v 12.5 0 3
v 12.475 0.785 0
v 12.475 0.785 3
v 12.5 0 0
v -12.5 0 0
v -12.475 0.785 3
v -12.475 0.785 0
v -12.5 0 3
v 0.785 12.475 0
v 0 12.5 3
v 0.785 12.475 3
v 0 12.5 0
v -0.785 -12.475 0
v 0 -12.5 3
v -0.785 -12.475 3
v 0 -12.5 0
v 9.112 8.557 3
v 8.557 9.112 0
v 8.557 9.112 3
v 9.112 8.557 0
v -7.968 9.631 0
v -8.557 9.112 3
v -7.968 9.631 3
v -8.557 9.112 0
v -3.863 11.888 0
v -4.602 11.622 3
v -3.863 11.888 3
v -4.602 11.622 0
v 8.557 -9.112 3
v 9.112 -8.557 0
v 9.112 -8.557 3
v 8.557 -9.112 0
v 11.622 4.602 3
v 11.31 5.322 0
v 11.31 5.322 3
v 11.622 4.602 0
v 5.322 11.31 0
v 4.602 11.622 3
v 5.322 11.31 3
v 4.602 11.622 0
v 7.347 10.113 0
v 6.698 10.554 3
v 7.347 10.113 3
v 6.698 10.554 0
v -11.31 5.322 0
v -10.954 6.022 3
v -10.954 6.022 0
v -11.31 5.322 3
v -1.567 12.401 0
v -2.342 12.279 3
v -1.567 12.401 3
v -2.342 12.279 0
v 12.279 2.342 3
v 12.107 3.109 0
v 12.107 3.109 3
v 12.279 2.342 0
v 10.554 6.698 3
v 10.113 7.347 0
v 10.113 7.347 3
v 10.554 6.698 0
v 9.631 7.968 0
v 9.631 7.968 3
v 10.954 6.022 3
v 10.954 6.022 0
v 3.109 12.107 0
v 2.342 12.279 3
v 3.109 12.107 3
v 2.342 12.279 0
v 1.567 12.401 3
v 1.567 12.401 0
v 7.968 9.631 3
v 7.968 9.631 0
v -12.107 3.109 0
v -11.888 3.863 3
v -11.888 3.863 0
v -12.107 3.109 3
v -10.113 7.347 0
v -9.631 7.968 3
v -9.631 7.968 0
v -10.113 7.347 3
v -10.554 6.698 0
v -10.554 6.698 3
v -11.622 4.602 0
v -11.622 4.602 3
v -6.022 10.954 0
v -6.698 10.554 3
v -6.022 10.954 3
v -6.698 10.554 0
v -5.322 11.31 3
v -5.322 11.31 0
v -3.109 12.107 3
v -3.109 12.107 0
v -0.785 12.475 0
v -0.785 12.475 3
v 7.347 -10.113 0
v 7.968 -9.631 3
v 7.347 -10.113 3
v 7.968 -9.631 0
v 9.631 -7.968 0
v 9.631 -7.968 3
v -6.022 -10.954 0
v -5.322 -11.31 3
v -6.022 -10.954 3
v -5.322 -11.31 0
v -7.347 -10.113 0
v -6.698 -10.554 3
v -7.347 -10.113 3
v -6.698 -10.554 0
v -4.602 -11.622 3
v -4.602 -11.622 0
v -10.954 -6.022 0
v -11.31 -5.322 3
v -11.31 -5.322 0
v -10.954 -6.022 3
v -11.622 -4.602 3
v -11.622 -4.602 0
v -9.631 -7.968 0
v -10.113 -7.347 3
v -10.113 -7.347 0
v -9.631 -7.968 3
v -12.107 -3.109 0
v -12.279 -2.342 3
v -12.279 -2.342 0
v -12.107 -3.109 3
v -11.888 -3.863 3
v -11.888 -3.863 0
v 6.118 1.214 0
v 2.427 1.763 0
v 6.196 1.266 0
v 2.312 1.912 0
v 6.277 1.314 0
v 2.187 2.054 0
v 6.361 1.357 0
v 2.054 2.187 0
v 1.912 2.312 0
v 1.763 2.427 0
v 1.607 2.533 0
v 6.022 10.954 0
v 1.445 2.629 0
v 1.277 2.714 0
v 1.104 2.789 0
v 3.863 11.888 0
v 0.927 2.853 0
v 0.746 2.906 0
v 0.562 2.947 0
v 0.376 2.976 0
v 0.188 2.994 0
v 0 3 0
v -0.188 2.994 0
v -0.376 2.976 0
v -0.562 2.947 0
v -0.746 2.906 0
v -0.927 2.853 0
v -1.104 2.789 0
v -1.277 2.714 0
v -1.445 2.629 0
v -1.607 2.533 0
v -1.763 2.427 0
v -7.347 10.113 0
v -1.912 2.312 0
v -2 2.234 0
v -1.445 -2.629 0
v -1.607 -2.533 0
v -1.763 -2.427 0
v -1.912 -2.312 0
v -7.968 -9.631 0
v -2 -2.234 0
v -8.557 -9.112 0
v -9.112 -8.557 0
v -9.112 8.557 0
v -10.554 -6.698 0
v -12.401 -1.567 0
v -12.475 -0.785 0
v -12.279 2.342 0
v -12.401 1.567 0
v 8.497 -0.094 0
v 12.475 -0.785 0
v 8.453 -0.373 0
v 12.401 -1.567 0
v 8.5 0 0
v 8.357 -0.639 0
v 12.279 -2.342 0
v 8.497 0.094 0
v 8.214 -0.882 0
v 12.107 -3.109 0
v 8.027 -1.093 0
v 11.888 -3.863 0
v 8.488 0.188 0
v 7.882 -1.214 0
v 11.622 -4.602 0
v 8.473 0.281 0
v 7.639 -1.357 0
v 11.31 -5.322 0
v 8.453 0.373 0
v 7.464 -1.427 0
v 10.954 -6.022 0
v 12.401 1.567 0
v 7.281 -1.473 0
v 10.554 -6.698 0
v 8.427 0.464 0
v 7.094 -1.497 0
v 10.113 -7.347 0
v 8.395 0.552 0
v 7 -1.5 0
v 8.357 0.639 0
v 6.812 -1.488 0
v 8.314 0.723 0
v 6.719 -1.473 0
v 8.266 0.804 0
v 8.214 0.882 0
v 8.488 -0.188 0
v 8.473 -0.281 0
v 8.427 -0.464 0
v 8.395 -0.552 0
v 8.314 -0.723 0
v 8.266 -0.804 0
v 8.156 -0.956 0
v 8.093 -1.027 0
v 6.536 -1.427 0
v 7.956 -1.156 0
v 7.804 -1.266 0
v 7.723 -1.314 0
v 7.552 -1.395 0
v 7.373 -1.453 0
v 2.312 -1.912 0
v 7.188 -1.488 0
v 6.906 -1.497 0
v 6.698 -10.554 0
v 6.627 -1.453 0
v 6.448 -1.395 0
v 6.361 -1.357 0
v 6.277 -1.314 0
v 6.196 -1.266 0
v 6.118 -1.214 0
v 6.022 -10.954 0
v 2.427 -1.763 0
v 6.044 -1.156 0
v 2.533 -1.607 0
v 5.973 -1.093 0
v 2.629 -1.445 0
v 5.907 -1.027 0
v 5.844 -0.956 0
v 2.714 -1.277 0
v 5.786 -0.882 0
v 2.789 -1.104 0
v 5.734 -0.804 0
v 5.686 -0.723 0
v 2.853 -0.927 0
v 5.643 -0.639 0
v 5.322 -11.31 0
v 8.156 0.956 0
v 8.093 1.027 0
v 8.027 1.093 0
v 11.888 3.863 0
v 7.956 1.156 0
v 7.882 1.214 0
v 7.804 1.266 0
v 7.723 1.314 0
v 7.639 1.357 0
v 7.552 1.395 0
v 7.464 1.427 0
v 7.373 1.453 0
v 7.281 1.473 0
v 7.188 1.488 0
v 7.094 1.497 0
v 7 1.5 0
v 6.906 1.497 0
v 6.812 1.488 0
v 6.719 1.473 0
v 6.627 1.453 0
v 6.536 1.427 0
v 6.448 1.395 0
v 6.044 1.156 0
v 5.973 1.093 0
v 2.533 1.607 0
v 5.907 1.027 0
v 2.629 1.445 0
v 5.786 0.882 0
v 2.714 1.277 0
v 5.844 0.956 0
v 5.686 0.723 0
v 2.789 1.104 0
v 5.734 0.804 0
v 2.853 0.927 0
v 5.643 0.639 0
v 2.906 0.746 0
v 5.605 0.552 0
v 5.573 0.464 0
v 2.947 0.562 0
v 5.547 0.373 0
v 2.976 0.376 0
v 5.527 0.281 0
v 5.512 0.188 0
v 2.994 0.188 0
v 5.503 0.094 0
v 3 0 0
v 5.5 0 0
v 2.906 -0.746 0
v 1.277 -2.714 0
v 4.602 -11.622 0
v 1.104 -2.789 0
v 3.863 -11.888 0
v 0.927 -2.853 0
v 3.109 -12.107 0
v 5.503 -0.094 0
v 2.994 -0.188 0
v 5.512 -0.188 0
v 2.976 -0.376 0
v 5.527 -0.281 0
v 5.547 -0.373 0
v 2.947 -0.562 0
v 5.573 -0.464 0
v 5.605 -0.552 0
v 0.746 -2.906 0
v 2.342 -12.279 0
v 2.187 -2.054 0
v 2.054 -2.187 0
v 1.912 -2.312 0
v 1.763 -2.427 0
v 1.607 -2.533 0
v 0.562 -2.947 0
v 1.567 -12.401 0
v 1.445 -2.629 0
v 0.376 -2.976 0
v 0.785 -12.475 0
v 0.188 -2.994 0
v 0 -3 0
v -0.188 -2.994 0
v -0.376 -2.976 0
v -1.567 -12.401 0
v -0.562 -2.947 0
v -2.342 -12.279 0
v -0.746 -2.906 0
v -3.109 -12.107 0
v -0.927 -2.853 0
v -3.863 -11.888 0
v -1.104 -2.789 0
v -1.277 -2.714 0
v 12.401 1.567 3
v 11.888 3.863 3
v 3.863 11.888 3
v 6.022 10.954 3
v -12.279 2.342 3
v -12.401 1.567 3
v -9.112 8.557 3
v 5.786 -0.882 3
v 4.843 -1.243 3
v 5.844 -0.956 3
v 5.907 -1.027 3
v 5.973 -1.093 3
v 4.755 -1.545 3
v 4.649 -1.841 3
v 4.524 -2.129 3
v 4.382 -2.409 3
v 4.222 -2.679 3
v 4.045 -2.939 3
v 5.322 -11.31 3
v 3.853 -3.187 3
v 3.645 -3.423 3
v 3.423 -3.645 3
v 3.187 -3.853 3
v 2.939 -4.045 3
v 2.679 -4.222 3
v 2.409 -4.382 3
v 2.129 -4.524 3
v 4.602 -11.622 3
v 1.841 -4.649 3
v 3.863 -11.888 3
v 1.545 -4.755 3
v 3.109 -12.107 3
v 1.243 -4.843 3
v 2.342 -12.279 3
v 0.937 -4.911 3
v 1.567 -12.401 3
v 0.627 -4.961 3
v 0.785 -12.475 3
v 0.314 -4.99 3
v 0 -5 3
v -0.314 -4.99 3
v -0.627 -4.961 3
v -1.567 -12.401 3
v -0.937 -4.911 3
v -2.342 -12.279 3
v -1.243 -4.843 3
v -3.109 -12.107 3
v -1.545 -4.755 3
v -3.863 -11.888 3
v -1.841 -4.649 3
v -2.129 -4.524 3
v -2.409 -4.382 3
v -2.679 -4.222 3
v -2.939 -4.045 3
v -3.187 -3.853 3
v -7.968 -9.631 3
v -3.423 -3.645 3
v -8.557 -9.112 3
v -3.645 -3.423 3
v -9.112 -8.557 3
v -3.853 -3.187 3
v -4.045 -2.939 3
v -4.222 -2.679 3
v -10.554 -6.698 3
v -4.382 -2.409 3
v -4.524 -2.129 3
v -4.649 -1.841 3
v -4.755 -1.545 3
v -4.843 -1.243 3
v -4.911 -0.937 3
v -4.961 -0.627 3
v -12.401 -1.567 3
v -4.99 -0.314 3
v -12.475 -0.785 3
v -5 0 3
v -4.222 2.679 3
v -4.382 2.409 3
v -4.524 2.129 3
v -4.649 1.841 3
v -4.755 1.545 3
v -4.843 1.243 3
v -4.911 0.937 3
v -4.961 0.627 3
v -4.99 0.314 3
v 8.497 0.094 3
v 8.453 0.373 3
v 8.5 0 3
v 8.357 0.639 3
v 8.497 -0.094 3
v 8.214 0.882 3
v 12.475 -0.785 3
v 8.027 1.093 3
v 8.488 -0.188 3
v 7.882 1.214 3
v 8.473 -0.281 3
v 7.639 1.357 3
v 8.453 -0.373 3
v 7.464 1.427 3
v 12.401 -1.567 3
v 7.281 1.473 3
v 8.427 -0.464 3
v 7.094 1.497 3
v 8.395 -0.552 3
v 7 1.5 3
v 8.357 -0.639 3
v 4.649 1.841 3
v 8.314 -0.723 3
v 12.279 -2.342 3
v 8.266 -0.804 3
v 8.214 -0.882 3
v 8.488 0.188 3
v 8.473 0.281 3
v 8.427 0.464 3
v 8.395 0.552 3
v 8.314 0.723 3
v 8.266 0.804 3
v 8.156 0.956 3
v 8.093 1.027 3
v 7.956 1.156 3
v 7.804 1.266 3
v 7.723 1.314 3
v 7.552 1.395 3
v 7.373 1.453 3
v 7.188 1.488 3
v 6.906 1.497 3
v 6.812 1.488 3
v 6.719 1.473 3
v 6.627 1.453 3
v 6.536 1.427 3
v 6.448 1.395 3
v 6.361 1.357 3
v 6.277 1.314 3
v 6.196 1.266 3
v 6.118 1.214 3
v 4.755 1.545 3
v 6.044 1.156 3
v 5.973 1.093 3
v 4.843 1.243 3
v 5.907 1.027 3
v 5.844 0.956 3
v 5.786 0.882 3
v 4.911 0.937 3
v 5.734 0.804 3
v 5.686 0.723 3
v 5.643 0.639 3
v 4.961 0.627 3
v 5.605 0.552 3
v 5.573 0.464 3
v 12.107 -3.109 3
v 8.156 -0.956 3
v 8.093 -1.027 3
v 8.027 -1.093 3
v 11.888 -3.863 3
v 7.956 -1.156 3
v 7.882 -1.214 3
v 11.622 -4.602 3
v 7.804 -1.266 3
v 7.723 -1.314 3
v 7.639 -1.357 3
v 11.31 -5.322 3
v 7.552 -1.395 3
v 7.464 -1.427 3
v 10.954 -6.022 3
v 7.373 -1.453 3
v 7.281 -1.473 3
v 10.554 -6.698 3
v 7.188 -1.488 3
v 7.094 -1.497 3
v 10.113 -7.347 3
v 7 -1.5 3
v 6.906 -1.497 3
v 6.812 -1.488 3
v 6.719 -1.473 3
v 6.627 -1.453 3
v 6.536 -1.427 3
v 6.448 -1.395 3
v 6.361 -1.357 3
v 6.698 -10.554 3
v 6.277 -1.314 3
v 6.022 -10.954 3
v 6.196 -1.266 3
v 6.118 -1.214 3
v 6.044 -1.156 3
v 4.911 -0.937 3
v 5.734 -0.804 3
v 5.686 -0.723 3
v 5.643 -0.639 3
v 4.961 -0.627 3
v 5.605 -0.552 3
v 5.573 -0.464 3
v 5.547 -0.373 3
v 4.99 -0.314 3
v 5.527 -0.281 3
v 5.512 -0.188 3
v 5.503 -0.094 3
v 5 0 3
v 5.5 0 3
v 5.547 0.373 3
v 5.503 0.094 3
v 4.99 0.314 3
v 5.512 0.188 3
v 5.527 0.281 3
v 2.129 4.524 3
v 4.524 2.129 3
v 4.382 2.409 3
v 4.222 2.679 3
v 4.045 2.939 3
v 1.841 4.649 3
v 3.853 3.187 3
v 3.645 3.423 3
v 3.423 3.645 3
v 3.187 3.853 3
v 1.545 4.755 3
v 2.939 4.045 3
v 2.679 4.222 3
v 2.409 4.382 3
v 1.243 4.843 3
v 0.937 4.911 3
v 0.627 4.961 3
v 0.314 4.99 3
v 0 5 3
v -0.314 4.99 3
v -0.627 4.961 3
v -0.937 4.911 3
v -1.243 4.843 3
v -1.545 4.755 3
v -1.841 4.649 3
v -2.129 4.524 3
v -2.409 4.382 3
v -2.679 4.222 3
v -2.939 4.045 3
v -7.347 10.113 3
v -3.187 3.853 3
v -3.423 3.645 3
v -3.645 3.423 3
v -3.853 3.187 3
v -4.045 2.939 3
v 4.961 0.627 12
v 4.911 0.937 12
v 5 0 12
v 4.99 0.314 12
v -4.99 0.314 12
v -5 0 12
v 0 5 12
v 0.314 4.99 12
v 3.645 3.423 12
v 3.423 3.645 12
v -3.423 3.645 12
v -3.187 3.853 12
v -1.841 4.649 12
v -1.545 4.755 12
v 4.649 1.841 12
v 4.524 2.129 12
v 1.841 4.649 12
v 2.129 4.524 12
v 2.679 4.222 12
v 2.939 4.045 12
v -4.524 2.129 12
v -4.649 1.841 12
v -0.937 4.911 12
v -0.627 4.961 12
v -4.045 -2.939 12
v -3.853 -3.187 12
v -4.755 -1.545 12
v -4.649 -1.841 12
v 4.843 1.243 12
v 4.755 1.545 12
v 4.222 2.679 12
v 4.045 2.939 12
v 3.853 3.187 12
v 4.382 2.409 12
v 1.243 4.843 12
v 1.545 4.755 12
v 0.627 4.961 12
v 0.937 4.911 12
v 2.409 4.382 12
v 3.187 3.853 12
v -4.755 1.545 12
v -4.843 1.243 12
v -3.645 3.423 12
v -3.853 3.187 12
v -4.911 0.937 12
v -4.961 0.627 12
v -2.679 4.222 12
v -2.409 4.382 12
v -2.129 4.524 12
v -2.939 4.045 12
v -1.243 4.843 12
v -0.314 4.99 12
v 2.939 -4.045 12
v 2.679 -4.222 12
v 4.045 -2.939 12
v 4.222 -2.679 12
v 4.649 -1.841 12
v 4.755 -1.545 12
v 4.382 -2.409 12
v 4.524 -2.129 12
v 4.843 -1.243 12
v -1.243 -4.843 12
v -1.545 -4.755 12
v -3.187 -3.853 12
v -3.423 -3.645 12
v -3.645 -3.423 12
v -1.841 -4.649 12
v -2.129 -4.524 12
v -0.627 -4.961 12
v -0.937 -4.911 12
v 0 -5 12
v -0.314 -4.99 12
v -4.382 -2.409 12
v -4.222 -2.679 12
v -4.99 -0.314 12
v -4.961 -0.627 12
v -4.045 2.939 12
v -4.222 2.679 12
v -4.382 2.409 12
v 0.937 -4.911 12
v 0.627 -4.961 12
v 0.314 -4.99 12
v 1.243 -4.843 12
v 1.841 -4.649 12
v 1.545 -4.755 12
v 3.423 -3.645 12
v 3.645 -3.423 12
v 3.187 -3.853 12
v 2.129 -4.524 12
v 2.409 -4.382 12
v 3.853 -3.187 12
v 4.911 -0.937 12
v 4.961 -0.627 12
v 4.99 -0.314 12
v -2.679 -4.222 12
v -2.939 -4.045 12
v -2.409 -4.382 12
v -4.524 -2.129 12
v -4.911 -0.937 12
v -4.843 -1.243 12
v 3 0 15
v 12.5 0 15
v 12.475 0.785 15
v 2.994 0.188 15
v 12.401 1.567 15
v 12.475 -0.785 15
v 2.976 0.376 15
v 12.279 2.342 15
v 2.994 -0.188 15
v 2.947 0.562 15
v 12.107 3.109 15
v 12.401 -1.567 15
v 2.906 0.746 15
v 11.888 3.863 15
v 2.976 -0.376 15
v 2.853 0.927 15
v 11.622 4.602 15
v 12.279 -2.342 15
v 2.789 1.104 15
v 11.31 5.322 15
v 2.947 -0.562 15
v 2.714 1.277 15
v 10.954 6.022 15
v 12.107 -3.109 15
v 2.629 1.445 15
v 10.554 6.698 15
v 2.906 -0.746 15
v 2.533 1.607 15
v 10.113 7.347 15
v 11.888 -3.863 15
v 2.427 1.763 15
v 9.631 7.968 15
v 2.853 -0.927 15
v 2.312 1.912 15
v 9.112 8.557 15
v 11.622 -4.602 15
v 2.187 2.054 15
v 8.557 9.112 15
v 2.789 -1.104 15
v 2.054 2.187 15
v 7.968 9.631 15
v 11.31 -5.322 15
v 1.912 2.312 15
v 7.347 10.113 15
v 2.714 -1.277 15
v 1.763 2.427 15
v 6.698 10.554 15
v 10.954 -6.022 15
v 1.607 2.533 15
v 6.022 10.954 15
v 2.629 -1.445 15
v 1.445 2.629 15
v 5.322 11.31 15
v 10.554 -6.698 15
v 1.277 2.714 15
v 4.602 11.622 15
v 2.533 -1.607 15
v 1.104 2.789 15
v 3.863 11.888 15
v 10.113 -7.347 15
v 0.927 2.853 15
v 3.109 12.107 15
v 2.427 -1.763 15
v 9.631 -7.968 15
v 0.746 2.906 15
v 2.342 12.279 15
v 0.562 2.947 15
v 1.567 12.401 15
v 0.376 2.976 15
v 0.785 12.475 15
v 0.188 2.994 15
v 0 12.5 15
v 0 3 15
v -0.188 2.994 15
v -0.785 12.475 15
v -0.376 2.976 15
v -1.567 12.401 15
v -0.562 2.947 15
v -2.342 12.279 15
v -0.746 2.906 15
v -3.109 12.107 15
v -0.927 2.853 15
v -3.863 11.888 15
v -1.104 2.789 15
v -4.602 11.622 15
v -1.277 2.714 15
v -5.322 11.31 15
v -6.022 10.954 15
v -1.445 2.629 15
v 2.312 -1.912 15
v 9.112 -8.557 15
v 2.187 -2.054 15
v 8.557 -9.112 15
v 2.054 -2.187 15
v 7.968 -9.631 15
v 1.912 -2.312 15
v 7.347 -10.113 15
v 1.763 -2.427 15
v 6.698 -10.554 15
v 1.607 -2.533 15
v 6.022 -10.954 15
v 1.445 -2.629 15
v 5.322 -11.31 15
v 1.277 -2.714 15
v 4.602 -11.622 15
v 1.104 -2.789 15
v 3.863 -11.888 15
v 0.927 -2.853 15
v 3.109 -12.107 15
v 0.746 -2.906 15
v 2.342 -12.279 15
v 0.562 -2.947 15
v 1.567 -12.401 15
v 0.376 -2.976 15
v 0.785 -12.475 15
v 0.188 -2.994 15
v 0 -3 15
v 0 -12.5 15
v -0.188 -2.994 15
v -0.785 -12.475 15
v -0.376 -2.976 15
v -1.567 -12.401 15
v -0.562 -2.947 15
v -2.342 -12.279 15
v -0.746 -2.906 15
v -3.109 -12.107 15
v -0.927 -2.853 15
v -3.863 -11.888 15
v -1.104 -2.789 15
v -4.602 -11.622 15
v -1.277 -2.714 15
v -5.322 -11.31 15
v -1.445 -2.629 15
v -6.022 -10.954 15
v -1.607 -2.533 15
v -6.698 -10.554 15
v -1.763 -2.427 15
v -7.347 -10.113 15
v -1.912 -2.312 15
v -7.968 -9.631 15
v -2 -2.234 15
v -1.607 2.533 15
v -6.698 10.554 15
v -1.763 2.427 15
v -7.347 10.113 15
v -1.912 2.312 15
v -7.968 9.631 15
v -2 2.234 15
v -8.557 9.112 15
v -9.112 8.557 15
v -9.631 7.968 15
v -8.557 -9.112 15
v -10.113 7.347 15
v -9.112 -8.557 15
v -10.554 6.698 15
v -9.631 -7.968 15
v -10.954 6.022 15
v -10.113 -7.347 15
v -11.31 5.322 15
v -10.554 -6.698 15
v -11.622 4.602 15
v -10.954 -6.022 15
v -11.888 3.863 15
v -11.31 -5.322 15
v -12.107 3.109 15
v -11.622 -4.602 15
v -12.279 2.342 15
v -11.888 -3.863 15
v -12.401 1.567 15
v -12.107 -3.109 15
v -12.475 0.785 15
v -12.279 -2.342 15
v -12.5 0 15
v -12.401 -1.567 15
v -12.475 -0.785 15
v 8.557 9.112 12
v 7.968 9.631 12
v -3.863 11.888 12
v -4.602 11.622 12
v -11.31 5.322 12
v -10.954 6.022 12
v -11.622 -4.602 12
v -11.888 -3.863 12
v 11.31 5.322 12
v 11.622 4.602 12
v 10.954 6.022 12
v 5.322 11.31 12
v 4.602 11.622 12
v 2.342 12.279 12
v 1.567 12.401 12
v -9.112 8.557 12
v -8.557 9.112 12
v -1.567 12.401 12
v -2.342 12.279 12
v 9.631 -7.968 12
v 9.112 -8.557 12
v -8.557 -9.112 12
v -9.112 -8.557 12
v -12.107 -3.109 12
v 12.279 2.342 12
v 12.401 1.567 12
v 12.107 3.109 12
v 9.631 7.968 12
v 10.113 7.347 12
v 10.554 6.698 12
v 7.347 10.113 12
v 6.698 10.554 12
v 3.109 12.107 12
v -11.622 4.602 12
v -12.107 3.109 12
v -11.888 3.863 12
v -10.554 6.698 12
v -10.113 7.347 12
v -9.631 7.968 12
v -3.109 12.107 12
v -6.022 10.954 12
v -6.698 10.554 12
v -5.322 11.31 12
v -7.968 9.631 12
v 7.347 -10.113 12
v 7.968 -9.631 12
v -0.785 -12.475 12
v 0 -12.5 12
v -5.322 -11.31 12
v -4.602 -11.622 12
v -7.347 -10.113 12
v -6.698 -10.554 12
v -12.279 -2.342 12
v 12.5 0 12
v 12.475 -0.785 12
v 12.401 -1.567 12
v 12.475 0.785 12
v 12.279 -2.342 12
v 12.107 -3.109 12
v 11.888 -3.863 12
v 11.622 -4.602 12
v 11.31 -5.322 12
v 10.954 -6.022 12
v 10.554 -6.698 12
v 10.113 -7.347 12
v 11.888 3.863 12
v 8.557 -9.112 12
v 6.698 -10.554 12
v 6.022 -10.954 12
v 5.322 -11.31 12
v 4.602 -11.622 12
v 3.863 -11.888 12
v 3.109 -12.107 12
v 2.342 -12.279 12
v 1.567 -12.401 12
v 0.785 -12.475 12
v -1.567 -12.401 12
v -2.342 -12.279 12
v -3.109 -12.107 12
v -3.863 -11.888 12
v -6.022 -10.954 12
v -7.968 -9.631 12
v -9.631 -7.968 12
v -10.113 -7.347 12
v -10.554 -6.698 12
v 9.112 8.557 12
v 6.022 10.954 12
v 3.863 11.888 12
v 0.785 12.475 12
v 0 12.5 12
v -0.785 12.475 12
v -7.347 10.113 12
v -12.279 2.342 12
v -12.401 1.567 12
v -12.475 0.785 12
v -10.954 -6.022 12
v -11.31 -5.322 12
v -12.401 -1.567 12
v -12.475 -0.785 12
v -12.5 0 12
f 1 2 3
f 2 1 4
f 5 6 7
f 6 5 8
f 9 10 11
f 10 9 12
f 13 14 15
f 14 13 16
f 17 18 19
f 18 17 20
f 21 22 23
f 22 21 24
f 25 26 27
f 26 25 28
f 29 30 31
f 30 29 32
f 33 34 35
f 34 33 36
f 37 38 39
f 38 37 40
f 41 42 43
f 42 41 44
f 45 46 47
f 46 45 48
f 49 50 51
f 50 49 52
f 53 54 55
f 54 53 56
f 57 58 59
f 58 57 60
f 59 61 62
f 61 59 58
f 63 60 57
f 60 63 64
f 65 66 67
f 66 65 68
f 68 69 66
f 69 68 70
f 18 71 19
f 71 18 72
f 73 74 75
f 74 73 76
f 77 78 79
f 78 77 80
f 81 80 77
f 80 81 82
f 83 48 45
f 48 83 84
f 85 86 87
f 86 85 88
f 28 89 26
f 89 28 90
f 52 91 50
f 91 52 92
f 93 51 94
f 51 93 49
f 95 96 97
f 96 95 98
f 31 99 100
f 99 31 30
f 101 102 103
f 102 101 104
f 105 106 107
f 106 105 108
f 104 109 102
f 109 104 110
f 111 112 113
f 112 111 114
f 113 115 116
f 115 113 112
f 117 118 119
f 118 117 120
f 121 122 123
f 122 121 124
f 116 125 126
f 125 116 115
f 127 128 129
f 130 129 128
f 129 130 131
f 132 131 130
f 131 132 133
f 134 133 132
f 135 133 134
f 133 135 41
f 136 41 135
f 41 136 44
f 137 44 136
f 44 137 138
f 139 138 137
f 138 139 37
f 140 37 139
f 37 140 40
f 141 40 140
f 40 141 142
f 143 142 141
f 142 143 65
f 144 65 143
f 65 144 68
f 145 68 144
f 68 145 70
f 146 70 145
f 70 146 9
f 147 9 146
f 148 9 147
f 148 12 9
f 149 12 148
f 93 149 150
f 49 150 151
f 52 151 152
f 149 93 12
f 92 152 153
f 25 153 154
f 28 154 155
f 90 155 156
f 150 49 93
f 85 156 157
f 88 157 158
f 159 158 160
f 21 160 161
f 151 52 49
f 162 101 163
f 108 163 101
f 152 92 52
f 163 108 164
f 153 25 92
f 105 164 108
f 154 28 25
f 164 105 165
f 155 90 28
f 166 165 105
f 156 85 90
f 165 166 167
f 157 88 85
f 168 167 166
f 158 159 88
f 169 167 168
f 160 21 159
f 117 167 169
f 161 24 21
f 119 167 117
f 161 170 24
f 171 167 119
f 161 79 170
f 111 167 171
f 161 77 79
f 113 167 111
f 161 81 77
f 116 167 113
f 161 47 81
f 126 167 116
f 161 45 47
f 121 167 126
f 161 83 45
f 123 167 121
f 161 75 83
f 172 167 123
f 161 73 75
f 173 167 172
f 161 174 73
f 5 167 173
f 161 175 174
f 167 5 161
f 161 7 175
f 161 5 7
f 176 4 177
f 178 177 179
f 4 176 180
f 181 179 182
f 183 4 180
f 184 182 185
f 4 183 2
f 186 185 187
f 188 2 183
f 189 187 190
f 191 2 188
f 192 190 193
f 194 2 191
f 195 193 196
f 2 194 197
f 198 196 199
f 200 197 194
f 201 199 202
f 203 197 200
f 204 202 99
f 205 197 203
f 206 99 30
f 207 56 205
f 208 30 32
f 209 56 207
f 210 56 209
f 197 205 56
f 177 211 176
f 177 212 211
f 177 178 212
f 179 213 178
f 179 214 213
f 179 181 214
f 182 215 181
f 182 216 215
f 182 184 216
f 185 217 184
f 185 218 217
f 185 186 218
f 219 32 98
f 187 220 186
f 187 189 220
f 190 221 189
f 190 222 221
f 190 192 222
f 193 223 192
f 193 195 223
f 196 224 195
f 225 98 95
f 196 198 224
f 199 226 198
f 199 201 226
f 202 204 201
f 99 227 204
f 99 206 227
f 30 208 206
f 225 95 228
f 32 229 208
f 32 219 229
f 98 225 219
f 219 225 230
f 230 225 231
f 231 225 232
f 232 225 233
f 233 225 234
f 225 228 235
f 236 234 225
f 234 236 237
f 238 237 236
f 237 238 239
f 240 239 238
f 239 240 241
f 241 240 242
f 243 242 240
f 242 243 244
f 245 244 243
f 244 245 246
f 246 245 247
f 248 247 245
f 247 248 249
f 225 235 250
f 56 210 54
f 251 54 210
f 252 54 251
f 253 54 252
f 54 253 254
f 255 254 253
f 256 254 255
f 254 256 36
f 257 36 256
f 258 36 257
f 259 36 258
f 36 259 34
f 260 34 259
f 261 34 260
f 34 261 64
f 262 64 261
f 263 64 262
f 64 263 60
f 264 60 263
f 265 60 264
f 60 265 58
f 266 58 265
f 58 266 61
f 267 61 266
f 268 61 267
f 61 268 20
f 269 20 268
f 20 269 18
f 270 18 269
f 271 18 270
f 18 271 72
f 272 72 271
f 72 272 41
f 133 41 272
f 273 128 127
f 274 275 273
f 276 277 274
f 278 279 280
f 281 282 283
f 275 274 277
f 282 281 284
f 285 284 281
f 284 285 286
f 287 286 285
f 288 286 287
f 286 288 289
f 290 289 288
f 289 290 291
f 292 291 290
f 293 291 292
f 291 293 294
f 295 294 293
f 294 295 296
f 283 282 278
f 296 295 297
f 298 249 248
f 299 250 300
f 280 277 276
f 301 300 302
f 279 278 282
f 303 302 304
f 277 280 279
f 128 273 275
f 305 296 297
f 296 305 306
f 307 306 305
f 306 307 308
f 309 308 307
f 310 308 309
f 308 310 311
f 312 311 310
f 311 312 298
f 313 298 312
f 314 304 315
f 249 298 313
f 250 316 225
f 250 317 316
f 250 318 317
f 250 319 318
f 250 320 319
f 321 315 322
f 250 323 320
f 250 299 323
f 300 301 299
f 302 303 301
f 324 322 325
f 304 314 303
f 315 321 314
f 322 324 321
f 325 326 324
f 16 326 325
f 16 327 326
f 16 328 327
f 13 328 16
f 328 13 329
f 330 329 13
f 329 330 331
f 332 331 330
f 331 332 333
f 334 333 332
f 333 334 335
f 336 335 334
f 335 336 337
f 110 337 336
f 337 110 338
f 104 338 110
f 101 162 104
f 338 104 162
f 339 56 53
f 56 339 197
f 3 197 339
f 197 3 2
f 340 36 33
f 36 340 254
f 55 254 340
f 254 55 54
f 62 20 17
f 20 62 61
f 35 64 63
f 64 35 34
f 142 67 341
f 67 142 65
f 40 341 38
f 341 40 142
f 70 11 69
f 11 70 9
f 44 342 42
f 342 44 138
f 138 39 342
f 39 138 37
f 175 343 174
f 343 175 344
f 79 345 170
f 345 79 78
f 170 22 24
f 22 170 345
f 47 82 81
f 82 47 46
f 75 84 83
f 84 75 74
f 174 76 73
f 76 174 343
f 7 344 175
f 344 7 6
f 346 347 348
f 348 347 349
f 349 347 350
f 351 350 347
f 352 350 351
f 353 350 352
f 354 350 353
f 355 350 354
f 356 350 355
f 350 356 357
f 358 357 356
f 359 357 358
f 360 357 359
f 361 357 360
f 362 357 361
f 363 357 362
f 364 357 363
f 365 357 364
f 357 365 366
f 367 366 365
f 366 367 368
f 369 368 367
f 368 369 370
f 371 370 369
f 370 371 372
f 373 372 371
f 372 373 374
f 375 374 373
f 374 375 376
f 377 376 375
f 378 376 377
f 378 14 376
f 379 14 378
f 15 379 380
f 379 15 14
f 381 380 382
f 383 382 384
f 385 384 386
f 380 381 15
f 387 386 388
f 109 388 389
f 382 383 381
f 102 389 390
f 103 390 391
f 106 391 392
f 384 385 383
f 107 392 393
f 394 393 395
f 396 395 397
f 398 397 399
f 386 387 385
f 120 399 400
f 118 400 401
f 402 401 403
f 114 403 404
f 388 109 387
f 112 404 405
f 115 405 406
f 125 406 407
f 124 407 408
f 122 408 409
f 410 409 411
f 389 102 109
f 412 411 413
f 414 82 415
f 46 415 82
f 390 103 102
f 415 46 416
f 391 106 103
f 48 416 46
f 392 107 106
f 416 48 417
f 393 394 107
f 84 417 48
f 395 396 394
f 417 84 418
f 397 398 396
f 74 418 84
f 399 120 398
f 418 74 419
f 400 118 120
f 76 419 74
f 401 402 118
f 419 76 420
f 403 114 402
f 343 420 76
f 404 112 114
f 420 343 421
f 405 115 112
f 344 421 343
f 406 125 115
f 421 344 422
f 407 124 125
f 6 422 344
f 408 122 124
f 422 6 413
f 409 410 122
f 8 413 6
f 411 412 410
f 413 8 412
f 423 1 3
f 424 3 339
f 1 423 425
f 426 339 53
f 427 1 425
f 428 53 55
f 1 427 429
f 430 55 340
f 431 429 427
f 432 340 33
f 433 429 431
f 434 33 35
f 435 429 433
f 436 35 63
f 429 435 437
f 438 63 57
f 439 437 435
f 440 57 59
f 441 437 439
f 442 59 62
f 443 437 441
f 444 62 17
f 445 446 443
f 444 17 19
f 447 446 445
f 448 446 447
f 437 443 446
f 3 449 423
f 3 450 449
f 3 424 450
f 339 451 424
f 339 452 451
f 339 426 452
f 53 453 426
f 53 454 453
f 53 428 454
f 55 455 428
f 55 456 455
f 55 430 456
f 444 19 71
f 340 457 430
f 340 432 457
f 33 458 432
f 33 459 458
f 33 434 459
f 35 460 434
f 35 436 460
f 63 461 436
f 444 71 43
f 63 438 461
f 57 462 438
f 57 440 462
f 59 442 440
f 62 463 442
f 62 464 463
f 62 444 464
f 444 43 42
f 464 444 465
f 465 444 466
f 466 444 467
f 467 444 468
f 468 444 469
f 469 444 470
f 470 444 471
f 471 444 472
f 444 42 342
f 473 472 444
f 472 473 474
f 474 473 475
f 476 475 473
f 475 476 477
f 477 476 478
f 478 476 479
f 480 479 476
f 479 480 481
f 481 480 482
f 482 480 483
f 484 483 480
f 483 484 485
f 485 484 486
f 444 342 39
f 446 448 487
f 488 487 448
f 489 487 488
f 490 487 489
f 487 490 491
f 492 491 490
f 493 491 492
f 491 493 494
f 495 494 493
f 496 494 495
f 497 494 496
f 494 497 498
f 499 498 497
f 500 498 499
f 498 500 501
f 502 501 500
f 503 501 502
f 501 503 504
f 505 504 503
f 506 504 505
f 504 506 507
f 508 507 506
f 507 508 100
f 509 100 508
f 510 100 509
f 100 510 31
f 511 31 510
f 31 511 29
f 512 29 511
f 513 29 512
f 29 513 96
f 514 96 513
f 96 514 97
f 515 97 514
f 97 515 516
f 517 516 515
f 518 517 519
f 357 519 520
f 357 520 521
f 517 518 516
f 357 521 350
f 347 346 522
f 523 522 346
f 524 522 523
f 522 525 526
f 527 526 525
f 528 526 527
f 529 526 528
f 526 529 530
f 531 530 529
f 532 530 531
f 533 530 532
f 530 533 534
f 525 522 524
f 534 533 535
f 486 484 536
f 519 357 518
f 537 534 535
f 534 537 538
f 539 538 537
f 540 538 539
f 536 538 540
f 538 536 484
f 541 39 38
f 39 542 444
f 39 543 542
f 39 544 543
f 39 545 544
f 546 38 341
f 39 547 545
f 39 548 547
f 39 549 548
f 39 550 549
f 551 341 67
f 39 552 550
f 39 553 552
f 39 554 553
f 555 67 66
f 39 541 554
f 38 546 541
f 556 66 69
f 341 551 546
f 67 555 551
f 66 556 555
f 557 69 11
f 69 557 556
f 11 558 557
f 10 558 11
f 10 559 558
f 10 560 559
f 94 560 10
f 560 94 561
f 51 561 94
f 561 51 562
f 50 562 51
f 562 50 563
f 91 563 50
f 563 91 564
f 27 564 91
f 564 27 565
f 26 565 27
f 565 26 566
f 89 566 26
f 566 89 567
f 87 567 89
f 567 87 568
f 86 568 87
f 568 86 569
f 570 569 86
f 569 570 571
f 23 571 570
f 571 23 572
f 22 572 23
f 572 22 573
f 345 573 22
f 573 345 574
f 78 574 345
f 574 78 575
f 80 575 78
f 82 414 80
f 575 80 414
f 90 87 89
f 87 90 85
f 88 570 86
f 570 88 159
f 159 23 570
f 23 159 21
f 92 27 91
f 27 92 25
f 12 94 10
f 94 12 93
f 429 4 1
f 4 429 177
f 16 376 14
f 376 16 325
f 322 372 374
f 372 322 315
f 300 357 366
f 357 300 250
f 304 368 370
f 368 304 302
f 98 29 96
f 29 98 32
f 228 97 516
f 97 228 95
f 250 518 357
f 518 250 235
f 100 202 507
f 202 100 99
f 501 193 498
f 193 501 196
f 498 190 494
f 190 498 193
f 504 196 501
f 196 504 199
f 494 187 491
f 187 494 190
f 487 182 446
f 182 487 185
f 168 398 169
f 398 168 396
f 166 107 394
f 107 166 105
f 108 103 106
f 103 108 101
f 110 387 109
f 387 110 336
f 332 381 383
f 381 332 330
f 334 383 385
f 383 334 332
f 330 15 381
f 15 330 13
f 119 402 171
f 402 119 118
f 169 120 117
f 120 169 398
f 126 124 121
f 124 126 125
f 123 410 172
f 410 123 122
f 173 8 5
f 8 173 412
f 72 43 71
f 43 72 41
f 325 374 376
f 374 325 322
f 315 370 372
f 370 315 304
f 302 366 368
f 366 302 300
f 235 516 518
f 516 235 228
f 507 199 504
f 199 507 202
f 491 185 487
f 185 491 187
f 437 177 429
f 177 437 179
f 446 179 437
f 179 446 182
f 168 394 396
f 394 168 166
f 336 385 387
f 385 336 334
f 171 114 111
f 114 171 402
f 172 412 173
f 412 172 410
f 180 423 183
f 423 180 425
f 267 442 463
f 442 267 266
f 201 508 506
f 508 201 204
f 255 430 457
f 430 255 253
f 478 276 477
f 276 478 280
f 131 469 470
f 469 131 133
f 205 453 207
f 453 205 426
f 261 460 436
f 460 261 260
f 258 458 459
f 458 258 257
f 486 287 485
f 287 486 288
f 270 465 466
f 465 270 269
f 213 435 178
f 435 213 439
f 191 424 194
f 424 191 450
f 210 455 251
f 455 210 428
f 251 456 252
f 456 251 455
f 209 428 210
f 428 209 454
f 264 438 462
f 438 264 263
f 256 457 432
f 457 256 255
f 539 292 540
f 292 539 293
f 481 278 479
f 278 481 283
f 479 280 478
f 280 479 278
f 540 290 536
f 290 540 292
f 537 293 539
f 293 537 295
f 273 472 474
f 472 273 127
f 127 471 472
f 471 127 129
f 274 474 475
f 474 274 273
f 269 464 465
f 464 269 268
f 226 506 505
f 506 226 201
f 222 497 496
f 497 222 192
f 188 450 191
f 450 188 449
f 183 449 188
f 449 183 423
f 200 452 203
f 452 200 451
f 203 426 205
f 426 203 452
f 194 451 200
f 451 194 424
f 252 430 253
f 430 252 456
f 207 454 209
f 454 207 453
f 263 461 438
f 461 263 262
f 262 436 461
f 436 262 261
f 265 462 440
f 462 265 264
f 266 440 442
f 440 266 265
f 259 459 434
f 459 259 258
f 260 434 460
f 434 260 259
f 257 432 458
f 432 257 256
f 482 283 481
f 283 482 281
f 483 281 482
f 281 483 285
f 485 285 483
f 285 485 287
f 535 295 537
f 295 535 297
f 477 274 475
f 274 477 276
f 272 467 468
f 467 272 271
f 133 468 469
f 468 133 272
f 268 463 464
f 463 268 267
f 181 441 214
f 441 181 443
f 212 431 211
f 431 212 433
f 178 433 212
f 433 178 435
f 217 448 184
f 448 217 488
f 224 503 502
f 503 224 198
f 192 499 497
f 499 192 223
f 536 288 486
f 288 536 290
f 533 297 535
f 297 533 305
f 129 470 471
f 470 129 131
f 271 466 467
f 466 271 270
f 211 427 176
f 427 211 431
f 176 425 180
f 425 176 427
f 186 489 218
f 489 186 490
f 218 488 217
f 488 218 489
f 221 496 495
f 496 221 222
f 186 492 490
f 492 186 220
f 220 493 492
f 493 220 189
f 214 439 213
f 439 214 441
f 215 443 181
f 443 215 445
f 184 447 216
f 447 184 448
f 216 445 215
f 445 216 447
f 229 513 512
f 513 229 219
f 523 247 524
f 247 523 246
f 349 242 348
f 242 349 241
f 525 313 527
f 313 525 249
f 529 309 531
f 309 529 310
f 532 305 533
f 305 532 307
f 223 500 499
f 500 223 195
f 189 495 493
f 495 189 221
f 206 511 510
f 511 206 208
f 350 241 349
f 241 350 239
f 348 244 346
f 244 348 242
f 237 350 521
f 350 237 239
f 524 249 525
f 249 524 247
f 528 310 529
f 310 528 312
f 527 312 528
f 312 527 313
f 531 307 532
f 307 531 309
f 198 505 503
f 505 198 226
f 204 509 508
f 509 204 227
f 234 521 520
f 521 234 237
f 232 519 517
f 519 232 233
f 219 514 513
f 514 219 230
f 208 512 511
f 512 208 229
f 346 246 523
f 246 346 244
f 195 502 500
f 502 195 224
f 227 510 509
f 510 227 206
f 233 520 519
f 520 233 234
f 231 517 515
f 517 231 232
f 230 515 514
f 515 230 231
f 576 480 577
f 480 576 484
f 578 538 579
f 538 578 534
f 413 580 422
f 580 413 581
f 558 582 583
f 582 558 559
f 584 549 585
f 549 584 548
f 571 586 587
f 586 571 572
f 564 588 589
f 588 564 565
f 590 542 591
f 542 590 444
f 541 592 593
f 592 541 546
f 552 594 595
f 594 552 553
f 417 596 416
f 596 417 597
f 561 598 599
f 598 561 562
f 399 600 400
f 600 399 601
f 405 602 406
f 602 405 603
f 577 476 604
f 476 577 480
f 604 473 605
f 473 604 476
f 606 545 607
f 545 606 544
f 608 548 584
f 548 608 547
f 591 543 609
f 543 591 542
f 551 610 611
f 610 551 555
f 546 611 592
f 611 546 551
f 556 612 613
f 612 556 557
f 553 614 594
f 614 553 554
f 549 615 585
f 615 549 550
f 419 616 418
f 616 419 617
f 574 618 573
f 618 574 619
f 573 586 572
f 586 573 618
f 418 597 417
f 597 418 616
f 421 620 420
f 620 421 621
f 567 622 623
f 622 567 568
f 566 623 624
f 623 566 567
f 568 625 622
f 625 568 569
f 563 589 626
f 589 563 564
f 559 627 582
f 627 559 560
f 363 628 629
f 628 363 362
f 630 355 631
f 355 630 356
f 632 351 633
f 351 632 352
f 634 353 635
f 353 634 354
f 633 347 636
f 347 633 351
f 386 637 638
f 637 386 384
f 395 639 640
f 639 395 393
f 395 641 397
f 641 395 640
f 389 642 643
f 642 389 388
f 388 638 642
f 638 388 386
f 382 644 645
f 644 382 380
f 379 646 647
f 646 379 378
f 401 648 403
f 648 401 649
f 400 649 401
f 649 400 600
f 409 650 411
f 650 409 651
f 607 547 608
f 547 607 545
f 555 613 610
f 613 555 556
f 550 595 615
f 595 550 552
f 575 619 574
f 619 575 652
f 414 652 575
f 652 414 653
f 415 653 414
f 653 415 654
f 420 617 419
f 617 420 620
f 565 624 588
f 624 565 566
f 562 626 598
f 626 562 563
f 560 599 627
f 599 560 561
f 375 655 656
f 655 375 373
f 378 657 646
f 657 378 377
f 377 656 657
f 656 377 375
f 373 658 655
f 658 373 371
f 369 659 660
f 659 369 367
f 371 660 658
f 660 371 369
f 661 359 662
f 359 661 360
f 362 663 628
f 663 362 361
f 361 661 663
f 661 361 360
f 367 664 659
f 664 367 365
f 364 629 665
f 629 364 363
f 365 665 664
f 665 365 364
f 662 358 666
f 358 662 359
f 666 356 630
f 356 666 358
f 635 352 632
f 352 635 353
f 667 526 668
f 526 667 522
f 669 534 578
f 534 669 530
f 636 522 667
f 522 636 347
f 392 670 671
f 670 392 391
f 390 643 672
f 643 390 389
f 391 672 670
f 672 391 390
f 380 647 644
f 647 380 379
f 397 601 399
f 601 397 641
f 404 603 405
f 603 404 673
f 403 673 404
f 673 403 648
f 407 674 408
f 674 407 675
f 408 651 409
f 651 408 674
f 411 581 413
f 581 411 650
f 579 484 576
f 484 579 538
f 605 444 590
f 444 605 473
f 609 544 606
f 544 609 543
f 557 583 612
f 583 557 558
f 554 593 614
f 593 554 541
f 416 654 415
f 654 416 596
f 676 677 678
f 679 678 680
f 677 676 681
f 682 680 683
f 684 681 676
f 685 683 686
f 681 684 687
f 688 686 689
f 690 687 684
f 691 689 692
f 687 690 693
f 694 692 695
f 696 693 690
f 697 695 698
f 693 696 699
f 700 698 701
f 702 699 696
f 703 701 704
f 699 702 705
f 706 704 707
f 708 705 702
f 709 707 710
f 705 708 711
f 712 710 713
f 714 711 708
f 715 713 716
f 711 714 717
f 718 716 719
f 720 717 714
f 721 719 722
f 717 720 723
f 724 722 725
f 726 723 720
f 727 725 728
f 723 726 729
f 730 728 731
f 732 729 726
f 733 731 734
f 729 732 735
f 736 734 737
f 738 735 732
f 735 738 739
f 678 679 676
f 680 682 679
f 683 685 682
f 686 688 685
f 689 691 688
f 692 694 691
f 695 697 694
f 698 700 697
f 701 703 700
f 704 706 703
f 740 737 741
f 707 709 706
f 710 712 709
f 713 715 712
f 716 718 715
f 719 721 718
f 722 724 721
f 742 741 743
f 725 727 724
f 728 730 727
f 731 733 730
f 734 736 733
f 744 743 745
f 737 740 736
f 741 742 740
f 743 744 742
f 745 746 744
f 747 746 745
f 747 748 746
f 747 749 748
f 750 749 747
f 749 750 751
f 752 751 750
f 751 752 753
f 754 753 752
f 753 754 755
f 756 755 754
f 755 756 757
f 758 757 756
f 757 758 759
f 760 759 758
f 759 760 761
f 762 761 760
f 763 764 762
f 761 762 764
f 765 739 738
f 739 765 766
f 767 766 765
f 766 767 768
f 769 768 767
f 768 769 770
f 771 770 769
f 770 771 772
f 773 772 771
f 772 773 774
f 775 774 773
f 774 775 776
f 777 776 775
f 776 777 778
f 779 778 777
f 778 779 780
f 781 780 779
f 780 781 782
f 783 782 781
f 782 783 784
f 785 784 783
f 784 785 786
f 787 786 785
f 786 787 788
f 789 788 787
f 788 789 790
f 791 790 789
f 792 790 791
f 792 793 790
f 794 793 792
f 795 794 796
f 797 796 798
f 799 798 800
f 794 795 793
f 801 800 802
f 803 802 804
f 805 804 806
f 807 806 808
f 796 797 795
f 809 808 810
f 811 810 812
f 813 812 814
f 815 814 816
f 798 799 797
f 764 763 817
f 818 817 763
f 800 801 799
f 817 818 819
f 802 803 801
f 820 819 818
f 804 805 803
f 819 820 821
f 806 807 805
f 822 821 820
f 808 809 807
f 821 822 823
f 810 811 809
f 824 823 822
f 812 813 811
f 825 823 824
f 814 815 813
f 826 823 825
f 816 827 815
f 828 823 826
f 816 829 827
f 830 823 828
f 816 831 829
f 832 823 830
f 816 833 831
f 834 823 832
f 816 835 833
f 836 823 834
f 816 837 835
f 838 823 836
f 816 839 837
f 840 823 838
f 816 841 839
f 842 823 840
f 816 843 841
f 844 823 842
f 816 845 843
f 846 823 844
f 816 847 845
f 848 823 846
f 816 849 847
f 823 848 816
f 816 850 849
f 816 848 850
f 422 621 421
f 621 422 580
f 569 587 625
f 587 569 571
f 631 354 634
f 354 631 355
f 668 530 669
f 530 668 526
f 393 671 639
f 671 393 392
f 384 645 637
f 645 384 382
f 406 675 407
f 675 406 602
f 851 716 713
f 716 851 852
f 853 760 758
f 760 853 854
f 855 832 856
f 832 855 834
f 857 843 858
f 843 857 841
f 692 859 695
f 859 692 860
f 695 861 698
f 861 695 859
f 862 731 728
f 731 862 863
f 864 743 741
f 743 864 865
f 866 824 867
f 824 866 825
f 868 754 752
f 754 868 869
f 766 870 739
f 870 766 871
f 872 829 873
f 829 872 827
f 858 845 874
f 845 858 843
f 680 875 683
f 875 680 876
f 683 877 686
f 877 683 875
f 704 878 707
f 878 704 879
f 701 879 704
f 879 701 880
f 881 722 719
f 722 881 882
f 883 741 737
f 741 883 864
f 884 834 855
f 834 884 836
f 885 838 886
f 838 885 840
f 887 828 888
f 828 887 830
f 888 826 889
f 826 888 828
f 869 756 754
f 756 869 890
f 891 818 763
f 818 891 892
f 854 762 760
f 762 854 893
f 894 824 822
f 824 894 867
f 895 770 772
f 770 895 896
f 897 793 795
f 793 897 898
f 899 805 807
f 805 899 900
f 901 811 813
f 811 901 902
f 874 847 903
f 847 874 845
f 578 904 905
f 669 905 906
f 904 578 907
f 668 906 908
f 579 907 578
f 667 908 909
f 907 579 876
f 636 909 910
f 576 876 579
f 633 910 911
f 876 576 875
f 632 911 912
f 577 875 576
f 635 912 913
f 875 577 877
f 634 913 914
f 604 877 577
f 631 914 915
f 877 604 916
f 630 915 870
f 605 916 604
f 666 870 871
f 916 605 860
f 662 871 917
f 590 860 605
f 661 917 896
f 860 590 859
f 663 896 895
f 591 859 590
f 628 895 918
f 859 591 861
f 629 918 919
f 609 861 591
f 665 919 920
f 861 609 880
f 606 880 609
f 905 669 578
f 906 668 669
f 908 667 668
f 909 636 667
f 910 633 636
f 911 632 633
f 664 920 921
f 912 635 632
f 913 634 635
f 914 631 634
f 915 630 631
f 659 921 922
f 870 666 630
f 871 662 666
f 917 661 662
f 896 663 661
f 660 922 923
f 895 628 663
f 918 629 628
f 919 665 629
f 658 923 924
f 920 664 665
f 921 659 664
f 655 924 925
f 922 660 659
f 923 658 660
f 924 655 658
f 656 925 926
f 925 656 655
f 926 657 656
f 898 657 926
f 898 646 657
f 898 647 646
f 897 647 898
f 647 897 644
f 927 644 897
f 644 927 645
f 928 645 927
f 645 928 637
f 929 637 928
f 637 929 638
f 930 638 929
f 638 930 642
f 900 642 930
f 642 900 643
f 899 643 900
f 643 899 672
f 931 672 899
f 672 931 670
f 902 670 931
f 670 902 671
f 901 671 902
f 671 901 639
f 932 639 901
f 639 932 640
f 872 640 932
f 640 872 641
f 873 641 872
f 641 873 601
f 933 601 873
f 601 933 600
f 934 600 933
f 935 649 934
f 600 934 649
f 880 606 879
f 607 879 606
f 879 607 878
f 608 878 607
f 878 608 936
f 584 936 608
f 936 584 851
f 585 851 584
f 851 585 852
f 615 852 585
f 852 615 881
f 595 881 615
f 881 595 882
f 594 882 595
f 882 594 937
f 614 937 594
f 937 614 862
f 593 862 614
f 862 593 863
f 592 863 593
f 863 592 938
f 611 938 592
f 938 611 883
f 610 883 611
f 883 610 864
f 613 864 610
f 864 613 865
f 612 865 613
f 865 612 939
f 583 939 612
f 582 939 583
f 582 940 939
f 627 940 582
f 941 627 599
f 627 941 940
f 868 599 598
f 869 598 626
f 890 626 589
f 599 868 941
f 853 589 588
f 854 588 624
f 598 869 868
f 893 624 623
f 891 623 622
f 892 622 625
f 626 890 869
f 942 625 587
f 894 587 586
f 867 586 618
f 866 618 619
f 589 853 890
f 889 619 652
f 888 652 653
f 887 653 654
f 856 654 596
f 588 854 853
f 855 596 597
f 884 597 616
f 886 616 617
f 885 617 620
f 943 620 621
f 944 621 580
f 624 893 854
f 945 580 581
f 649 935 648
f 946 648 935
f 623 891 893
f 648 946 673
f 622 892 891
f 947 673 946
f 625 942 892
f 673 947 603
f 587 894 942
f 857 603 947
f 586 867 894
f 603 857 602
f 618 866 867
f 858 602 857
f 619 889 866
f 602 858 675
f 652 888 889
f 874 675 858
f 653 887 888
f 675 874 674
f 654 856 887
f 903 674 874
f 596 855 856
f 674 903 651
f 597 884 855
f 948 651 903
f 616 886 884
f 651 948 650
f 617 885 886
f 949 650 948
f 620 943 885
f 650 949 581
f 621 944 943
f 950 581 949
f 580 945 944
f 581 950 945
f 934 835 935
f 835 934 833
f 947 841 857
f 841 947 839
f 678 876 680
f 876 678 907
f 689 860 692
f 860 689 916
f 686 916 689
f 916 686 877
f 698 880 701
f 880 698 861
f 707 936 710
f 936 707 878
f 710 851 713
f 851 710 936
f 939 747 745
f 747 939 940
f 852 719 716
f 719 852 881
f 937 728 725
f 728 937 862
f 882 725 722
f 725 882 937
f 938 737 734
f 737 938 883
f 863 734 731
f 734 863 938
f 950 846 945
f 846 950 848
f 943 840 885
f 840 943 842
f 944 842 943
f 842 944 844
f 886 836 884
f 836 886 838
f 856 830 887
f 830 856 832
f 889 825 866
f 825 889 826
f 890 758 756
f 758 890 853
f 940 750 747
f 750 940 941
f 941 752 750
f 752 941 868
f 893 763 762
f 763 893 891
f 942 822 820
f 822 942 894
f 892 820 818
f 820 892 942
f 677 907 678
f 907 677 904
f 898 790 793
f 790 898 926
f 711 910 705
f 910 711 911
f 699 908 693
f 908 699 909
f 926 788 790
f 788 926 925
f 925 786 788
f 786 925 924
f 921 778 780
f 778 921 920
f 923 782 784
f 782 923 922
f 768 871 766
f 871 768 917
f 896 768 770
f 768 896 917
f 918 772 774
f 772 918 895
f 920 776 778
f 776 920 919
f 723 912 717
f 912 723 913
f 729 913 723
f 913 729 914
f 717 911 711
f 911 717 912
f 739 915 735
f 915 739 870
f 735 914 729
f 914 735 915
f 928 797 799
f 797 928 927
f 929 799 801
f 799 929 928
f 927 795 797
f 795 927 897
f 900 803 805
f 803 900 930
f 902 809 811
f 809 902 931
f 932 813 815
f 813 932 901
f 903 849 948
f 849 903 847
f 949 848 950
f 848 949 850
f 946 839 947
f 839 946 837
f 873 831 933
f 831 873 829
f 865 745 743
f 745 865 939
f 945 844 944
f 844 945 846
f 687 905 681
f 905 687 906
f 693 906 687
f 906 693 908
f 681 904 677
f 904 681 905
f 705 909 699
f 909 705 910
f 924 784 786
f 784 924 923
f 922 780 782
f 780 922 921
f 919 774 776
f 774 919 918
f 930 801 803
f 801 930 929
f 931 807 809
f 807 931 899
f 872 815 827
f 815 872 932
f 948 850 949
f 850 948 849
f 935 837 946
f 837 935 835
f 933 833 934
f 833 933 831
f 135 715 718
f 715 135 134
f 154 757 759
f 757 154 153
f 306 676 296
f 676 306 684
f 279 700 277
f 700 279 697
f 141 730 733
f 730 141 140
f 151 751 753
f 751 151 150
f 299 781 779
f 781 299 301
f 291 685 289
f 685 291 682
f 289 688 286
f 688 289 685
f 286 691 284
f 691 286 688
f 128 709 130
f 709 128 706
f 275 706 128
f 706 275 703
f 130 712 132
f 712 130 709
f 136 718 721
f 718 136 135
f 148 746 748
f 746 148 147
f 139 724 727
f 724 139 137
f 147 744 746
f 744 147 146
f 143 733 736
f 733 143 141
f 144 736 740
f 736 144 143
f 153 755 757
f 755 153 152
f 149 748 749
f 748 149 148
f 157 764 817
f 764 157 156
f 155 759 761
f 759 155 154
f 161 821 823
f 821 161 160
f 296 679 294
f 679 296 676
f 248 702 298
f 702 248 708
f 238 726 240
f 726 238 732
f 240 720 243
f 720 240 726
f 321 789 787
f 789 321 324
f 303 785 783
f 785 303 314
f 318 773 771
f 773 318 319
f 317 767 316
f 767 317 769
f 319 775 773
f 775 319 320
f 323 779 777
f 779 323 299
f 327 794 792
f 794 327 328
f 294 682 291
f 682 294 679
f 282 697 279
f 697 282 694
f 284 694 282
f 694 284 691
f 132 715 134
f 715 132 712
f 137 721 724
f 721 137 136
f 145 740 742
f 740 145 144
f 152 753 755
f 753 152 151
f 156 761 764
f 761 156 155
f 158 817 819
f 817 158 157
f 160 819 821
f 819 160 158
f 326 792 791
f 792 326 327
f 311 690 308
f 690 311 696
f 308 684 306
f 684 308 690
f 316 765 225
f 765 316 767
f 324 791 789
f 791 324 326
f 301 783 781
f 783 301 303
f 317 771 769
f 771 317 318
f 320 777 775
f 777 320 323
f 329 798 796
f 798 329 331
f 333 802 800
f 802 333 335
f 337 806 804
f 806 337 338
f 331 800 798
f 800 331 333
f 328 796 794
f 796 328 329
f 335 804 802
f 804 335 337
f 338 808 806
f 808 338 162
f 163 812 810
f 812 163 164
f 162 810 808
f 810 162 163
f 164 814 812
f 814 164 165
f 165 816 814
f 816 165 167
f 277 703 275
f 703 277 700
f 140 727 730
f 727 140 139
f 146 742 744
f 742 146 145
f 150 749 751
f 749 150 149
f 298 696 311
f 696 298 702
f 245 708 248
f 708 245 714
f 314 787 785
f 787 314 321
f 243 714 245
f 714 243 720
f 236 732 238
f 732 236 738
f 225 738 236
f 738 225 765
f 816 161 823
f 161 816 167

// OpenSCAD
$fn = 100;

band_thickness = 3;
height = 15;

difference()
{
    union()
    {
        // center shaft
        cylinder(h = height,d = 10, center = false);
        
        // bottom band
        difference()
        {
            cylinder(h = band_thickness, d = 25, center = false);
            translate([7, 0, 0])
                cylinder(h = 2*band_thickness, d = 3, center = true);
            cylinder(h = band_thickness, d = 9, center = false);
        }
        
        // top band
        translate([0,0,height-band_thickness])
        cylinder(h=band_thickness, d = 25, center=false);
    }
    cylinder(h = height,d = 6, center = false);
}
// key shaft
translate([-3, 0, height/2])
    cube([2, 5, height],center=true);
